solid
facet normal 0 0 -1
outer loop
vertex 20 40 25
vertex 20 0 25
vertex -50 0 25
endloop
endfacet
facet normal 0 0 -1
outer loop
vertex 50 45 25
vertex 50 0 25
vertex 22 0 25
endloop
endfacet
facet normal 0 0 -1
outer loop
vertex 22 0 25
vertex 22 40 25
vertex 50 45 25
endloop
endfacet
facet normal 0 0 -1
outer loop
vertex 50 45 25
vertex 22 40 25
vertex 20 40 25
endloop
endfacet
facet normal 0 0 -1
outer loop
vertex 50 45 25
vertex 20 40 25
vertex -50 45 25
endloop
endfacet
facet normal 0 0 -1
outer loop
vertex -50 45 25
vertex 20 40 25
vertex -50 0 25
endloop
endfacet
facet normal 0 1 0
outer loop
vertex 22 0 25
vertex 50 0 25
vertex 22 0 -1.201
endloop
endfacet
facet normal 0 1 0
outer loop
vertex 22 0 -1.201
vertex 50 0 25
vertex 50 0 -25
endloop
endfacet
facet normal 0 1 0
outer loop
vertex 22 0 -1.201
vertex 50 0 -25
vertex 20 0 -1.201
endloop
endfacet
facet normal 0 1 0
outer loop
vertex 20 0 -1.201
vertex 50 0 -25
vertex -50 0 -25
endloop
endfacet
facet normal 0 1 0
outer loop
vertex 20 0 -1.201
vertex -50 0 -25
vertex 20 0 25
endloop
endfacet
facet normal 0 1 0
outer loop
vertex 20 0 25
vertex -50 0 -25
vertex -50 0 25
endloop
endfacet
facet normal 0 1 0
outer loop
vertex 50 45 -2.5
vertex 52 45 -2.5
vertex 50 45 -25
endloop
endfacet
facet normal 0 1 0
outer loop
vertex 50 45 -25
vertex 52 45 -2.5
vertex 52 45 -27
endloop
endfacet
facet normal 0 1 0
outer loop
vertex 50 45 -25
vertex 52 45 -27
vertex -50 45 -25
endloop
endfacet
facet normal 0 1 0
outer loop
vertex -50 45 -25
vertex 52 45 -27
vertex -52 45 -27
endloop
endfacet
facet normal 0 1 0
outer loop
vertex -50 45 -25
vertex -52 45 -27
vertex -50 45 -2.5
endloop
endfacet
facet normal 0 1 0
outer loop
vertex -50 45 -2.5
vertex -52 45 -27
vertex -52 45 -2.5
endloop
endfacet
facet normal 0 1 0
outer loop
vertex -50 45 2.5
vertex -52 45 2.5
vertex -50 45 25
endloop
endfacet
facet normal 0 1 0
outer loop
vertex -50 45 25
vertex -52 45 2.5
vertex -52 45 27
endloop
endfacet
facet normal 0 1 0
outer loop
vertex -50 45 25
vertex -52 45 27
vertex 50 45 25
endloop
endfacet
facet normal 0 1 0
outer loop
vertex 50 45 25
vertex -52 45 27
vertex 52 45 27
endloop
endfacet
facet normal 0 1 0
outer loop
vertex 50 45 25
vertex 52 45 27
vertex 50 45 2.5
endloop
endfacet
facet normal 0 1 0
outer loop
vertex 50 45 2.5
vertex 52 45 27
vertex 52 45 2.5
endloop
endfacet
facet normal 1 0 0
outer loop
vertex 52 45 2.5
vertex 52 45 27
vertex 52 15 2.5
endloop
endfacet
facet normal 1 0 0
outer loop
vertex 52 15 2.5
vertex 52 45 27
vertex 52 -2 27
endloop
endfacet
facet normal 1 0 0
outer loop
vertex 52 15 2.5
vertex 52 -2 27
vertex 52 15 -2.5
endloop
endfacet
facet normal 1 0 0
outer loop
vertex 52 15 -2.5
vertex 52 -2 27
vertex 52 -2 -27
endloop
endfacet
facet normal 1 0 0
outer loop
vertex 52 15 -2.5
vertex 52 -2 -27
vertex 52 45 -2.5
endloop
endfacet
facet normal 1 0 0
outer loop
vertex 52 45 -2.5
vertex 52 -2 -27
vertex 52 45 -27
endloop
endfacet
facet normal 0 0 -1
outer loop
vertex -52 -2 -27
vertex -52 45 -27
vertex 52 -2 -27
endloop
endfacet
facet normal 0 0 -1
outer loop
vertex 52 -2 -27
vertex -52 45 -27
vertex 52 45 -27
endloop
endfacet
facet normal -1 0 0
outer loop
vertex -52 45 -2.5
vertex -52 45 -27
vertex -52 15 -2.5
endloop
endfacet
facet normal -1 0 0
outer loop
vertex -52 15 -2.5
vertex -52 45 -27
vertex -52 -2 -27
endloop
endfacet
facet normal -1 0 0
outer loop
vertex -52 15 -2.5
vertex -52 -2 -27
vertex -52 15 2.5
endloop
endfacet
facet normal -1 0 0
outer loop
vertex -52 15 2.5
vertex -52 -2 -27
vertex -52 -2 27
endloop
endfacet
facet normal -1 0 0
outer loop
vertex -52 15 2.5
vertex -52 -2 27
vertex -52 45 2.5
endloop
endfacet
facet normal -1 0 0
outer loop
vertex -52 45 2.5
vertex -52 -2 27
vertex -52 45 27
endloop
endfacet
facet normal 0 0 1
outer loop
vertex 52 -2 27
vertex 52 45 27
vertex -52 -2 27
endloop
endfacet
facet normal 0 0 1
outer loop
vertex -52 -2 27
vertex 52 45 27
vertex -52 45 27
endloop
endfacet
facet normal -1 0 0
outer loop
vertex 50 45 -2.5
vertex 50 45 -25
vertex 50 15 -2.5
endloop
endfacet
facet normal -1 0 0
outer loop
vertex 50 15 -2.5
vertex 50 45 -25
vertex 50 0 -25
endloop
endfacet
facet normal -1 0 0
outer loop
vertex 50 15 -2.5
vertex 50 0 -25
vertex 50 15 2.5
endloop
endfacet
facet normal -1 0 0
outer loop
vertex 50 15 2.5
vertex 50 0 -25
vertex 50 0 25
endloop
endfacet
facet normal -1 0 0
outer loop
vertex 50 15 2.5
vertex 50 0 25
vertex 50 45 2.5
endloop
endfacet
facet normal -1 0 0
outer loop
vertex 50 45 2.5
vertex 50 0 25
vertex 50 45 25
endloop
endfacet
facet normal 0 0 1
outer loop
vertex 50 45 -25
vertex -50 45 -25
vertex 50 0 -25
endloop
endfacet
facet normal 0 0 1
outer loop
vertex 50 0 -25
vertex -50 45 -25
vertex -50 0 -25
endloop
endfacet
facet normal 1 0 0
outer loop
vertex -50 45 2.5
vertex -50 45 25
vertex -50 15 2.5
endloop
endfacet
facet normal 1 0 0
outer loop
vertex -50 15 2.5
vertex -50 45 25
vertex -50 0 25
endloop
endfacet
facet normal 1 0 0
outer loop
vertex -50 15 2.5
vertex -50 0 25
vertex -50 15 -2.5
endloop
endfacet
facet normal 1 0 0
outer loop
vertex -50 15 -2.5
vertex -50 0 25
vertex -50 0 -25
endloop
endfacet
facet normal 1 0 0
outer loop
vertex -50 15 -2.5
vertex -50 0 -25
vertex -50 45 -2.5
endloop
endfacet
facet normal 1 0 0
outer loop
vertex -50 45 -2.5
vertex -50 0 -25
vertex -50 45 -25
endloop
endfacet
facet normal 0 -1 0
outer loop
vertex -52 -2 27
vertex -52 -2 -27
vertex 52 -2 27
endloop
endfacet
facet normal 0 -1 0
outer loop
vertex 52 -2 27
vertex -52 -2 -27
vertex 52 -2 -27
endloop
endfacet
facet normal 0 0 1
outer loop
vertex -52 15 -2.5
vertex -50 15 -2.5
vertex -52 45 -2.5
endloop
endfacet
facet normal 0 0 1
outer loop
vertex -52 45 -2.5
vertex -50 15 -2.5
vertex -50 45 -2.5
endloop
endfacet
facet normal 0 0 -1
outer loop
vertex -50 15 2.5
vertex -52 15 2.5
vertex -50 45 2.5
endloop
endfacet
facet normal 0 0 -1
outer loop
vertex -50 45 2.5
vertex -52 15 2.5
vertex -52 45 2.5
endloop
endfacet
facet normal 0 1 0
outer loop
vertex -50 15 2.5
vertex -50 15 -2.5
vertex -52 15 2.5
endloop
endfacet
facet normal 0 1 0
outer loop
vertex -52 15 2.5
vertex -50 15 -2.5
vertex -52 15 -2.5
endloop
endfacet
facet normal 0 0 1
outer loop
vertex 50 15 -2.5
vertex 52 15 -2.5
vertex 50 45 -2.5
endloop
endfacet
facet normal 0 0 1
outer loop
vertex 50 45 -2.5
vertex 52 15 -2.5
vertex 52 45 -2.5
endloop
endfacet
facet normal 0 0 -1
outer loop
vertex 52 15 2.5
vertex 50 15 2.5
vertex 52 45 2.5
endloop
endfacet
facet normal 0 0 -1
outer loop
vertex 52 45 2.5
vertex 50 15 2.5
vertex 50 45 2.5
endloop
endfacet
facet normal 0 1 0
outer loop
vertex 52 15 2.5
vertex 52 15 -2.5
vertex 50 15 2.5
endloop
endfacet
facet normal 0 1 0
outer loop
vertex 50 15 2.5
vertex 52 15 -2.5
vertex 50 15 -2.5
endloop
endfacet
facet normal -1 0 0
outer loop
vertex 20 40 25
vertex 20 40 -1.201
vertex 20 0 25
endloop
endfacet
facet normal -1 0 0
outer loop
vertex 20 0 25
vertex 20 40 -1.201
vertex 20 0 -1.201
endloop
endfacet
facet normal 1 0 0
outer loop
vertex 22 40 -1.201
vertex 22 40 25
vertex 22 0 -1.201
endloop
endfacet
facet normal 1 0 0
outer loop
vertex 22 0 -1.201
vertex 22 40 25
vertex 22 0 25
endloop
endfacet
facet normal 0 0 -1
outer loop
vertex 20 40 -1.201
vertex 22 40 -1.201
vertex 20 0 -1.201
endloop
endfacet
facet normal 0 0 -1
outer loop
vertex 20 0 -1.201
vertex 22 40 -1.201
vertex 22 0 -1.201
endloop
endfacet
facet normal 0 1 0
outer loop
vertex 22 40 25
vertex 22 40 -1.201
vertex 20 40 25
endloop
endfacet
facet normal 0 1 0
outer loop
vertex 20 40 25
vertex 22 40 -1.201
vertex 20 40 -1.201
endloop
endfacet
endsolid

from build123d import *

# Parameters (mm, degrees)
SKETCH1_W           = 104
SKETCH1_H           = 54
SKETCH1_W_2         = 100
SKETCH1_H_2         = 50
BOSS_EXTRUDE1_DEPTH = 45
SKETCH2_W           = 104
SKETCH2_H           = 54
BOSS_EXTRUDE2_DEPTH = 2
SKETCH3_W           = 2
SKETCH3_H           = 5
CUT_EXTRUDE1_DEPTH  = 30
SKETCH4_W           = 2
SKETCH4_H           = 26.201240847
BOSS_EXTRUDE3_DEPTH = 40


with BuildPart() as part:
    # Sketch1 → Boss-Extrude1 (new body)
    with BuildSketch(Plane(origin=(0, 0, 0), x_dir=(1, 0, 0), z_dir=(0, 1, 0))):
        Rectangle(SKETCH1_W, SKETCH1_H)
        Rectangle(SKETCH1_W_2, SKETCH1_H_2, mode=Mode.SUBTRACT)
    extrude(amount=BOSS_EXTRUDE1_DEPTH)

    # Sketch2 → Boss-Extrude2 (add)
    with BuildSketch(Plane(origin=(0, 0, 0), x_dir=(1, 0, 0), z_dir=(0, 1, 0))):
        Rectangle(SKETCH2_W, SKETCH2_H)
    extrude(amount=-BOSS_EXTRUDE2_DEPTH)

    # Sketch3 → Cut-Extrude1 (cut)
    with BuildSketch(Plane(origin=(0, 45, 0), x_dir=(1, 0, 0), z_dir=(0, 1, 0))):
        with Locations((51, 0)):
            Rectangle(SKETCH3_W, SKETCH3_H)
        with Locations((-51, 0)):
            Rectangle(SKETCH3_W, SKETCH3_H)
    extrude(amount=-CUT_EXTRUDE1_DEPTH, mode=Mode.SUBTRACT)

    # Sketch4 → Boss-Extrude3 (add)
    with BuildSketch(Plane(origin=(0, 0, 0), x_dir=(1, 0, 0), z_dir=(0, 1, 0))):
        with Locations((21, -11.899379576)):
            Rectangle(SKETCH4_W, SKETCH4_H)
    extrude(amount=BOSS_EXTRUDE3_DEPTH)


solid = part.part
